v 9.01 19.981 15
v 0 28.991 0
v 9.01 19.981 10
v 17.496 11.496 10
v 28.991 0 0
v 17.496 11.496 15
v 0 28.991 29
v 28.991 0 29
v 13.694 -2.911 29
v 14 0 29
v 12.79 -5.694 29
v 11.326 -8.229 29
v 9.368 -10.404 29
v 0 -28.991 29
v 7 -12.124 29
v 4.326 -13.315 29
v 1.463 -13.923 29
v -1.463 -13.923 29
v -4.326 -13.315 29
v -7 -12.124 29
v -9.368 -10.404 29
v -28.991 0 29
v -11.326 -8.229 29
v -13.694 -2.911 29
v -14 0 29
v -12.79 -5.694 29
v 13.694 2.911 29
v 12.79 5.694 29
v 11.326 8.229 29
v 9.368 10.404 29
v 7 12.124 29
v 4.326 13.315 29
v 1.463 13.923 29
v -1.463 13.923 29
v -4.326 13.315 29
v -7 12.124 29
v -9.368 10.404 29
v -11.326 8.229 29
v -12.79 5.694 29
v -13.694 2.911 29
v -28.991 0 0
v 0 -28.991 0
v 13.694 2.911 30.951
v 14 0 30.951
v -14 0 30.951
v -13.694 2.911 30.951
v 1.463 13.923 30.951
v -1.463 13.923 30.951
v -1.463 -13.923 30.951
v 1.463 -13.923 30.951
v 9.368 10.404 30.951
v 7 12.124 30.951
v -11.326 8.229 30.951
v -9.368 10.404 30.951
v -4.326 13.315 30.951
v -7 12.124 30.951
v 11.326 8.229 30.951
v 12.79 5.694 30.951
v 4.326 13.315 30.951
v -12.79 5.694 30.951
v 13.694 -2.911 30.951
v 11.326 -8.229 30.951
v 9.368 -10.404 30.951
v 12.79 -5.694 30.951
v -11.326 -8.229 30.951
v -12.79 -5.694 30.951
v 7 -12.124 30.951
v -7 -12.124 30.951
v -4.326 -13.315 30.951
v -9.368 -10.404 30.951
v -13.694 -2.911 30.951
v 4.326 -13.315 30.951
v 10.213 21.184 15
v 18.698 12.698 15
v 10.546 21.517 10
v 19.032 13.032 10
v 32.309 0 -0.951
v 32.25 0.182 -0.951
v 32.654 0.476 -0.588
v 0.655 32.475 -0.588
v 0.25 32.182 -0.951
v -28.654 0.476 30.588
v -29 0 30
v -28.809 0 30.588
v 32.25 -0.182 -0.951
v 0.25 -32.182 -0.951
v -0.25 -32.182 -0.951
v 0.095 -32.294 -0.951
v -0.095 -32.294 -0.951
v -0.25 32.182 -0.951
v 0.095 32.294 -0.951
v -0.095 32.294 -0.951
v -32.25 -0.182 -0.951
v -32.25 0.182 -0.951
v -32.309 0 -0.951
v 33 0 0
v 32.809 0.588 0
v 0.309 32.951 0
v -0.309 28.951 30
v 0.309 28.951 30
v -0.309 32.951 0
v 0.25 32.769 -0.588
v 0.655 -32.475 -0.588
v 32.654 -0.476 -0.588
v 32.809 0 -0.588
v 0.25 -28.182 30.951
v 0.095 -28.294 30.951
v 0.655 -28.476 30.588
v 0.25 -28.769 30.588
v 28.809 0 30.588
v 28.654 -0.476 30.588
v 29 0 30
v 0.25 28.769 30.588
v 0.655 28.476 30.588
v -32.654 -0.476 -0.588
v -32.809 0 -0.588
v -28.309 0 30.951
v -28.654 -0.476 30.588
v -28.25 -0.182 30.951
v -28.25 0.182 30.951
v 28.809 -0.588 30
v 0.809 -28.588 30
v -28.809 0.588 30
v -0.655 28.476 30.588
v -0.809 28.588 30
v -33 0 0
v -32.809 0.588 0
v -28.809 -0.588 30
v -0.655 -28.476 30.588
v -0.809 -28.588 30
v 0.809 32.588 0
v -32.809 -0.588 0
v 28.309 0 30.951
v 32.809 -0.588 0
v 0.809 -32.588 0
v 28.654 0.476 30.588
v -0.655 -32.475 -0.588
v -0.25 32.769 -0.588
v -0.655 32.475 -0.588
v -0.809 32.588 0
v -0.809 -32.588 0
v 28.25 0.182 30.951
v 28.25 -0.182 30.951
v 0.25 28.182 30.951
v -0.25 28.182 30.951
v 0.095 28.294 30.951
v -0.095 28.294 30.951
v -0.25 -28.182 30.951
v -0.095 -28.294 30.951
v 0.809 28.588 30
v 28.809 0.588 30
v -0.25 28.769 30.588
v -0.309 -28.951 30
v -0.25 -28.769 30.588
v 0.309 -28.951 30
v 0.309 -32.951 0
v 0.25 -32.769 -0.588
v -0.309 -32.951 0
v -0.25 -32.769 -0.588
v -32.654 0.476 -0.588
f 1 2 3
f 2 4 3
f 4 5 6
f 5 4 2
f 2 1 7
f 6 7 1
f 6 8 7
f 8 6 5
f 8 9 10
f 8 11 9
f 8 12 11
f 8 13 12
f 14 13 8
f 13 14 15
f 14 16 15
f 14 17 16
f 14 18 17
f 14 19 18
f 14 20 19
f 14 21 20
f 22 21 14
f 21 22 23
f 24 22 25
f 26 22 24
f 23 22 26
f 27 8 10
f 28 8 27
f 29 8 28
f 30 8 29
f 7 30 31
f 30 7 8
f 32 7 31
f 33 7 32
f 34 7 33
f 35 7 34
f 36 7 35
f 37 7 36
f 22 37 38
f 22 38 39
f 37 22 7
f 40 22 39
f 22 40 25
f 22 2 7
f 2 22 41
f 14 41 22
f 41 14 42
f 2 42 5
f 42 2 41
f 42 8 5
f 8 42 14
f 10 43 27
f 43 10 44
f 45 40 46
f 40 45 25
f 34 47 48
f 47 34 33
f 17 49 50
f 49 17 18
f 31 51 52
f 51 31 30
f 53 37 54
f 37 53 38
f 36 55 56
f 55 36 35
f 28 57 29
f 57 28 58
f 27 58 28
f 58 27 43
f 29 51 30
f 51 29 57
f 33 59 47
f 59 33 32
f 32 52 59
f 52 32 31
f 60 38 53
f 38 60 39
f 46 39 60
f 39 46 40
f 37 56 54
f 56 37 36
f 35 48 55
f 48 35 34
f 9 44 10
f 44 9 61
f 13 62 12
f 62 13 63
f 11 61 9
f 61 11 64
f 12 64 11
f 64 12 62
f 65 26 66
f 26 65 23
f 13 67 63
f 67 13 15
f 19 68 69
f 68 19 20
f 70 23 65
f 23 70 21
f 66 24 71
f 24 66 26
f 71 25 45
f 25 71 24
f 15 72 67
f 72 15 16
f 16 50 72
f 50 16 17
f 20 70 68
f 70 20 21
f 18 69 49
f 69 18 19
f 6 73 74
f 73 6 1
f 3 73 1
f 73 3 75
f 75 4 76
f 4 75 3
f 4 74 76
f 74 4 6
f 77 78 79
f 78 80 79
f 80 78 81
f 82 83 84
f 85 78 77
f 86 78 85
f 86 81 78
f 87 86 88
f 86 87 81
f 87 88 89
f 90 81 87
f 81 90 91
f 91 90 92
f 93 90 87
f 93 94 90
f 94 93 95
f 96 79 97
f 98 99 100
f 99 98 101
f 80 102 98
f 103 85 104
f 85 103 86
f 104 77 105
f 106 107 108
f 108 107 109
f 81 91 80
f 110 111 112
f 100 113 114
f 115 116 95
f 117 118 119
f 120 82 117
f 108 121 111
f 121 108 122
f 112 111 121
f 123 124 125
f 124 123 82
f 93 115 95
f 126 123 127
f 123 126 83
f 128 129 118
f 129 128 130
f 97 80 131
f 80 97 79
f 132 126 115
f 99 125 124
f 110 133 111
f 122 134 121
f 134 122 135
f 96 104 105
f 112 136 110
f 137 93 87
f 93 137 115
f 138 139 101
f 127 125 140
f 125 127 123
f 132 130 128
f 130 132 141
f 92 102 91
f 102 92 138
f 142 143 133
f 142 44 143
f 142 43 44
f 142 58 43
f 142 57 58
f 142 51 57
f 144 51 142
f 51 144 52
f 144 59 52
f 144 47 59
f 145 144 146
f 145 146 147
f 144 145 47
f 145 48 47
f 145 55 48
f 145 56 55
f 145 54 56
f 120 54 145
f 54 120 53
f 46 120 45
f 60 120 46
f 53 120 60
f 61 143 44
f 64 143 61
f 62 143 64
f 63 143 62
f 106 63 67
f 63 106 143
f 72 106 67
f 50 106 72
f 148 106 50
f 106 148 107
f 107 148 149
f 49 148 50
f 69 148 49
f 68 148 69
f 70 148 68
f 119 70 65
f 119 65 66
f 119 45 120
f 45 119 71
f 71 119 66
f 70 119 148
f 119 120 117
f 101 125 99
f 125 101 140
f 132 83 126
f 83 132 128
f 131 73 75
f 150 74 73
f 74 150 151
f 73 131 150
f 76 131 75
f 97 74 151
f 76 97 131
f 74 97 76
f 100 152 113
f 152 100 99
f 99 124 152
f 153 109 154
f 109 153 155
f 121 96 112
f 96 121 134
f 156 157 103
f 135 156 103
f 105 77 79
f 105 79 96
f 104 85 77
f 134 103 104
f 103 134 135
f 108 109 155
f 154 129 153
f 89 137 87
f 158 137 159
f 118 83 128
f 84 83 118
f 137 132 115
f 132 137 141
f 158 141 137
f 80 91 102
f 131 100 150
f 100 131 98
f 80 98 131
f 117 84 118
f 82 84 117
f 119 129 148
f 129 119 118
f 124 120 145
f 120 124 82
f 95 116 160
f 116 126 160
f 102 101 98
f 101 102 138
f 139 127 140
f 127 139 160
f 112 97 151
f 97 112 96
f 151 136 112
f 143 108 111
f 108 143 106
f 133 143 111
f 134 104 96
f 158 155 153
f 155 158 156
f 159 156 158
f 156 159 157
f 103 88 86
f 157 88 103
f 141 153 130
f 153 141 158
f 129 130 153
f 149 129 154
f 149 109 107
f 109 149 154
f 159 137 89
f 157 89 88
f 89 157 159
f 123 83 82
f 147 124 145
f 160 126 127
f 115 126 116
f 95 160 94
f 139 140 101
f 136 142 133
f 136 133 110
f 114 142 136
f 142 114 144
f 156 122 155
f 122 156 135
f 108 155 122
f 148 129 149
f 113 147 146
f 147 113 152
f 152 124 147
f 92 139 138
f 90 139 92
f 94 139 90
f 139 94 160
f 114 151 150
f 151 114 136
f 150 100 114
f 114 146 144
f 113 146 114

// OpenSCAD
// file: ../../../../basics/rounded-edges/rounded-pyramid/rounded-pyramid.scad
/**
 * 
 */
module roundedPyramid(h, 
					  r1, 
					  r2, 
					  cornerRadius,
//TODO: clarify this parameter
					  cylinderFn = 4,					  
					  sides=30, 
					  sidesOnly=false)
{
//TODO: clarify this parameter
	$fn=sides;
	
	minkowski()
	{
		cylinder(h=h, r1=r1, r2=r2, $fn=cylinderFn);
	    
	    if(sidesOnly)
	    {
	    	cylinder(r=cornerRadius);
	    }
	    else
	    {
	    	sphere(r=cornerRadius);
	    	
    	}
	}	
}
// file: ../street-lamp-base.scad
use <../../../basics/rounded-edges/rounded-pyramid/rounded-pyramid.scad>

module streetLampBase(switchHole = "no")
{
	height = 30;
	radius1 = 32;
	radius2 = 28;
	sides=10;

	difference()
	{
		color("grey")
		roundedPyramid(h = height,
			 			r1 = radius1,
						r2 = radius2,
						sides = sides,
						sidesOnly=false);

		streetLampBase_cutouts(height = height, radius2 = radius2, switchHole = switchHole);
	}
}

module streetLampBase_cutouts(height, radius2, switchHole)
{
	// main chamber
	xy = radius2 + 13;
	z = height - 1;
	xyTranslate = -xy / 4.0;
	translate([0, 0, z/2.0])
	rotate([0, 0, 45])
	cube([xy, xy, z], center = true);

	// top hole
	cutoutRadius = radius2 - 14;
	cutoutHeight = height + 4;
	cylinder(r = cutoutRadius, h = cutoutHeight);

	if(switchHole == "yes")
	{
		streetLampBase_cutouts_switch();
	}
}

module streetLampBase_cutouts_switch()
{
	xLength = 50;
	yLength = 12;
	yTranslate = -yLength / 2.0;
	zTranslate = 10;
	translate([0, yTranslate, zTranslate])
	rotate([0,0,45])
	cube([xLength, yLength, 5]);
}
// main file
use <../street-lamp-base.scad>

streetLampBase(switchHole = "yes");
